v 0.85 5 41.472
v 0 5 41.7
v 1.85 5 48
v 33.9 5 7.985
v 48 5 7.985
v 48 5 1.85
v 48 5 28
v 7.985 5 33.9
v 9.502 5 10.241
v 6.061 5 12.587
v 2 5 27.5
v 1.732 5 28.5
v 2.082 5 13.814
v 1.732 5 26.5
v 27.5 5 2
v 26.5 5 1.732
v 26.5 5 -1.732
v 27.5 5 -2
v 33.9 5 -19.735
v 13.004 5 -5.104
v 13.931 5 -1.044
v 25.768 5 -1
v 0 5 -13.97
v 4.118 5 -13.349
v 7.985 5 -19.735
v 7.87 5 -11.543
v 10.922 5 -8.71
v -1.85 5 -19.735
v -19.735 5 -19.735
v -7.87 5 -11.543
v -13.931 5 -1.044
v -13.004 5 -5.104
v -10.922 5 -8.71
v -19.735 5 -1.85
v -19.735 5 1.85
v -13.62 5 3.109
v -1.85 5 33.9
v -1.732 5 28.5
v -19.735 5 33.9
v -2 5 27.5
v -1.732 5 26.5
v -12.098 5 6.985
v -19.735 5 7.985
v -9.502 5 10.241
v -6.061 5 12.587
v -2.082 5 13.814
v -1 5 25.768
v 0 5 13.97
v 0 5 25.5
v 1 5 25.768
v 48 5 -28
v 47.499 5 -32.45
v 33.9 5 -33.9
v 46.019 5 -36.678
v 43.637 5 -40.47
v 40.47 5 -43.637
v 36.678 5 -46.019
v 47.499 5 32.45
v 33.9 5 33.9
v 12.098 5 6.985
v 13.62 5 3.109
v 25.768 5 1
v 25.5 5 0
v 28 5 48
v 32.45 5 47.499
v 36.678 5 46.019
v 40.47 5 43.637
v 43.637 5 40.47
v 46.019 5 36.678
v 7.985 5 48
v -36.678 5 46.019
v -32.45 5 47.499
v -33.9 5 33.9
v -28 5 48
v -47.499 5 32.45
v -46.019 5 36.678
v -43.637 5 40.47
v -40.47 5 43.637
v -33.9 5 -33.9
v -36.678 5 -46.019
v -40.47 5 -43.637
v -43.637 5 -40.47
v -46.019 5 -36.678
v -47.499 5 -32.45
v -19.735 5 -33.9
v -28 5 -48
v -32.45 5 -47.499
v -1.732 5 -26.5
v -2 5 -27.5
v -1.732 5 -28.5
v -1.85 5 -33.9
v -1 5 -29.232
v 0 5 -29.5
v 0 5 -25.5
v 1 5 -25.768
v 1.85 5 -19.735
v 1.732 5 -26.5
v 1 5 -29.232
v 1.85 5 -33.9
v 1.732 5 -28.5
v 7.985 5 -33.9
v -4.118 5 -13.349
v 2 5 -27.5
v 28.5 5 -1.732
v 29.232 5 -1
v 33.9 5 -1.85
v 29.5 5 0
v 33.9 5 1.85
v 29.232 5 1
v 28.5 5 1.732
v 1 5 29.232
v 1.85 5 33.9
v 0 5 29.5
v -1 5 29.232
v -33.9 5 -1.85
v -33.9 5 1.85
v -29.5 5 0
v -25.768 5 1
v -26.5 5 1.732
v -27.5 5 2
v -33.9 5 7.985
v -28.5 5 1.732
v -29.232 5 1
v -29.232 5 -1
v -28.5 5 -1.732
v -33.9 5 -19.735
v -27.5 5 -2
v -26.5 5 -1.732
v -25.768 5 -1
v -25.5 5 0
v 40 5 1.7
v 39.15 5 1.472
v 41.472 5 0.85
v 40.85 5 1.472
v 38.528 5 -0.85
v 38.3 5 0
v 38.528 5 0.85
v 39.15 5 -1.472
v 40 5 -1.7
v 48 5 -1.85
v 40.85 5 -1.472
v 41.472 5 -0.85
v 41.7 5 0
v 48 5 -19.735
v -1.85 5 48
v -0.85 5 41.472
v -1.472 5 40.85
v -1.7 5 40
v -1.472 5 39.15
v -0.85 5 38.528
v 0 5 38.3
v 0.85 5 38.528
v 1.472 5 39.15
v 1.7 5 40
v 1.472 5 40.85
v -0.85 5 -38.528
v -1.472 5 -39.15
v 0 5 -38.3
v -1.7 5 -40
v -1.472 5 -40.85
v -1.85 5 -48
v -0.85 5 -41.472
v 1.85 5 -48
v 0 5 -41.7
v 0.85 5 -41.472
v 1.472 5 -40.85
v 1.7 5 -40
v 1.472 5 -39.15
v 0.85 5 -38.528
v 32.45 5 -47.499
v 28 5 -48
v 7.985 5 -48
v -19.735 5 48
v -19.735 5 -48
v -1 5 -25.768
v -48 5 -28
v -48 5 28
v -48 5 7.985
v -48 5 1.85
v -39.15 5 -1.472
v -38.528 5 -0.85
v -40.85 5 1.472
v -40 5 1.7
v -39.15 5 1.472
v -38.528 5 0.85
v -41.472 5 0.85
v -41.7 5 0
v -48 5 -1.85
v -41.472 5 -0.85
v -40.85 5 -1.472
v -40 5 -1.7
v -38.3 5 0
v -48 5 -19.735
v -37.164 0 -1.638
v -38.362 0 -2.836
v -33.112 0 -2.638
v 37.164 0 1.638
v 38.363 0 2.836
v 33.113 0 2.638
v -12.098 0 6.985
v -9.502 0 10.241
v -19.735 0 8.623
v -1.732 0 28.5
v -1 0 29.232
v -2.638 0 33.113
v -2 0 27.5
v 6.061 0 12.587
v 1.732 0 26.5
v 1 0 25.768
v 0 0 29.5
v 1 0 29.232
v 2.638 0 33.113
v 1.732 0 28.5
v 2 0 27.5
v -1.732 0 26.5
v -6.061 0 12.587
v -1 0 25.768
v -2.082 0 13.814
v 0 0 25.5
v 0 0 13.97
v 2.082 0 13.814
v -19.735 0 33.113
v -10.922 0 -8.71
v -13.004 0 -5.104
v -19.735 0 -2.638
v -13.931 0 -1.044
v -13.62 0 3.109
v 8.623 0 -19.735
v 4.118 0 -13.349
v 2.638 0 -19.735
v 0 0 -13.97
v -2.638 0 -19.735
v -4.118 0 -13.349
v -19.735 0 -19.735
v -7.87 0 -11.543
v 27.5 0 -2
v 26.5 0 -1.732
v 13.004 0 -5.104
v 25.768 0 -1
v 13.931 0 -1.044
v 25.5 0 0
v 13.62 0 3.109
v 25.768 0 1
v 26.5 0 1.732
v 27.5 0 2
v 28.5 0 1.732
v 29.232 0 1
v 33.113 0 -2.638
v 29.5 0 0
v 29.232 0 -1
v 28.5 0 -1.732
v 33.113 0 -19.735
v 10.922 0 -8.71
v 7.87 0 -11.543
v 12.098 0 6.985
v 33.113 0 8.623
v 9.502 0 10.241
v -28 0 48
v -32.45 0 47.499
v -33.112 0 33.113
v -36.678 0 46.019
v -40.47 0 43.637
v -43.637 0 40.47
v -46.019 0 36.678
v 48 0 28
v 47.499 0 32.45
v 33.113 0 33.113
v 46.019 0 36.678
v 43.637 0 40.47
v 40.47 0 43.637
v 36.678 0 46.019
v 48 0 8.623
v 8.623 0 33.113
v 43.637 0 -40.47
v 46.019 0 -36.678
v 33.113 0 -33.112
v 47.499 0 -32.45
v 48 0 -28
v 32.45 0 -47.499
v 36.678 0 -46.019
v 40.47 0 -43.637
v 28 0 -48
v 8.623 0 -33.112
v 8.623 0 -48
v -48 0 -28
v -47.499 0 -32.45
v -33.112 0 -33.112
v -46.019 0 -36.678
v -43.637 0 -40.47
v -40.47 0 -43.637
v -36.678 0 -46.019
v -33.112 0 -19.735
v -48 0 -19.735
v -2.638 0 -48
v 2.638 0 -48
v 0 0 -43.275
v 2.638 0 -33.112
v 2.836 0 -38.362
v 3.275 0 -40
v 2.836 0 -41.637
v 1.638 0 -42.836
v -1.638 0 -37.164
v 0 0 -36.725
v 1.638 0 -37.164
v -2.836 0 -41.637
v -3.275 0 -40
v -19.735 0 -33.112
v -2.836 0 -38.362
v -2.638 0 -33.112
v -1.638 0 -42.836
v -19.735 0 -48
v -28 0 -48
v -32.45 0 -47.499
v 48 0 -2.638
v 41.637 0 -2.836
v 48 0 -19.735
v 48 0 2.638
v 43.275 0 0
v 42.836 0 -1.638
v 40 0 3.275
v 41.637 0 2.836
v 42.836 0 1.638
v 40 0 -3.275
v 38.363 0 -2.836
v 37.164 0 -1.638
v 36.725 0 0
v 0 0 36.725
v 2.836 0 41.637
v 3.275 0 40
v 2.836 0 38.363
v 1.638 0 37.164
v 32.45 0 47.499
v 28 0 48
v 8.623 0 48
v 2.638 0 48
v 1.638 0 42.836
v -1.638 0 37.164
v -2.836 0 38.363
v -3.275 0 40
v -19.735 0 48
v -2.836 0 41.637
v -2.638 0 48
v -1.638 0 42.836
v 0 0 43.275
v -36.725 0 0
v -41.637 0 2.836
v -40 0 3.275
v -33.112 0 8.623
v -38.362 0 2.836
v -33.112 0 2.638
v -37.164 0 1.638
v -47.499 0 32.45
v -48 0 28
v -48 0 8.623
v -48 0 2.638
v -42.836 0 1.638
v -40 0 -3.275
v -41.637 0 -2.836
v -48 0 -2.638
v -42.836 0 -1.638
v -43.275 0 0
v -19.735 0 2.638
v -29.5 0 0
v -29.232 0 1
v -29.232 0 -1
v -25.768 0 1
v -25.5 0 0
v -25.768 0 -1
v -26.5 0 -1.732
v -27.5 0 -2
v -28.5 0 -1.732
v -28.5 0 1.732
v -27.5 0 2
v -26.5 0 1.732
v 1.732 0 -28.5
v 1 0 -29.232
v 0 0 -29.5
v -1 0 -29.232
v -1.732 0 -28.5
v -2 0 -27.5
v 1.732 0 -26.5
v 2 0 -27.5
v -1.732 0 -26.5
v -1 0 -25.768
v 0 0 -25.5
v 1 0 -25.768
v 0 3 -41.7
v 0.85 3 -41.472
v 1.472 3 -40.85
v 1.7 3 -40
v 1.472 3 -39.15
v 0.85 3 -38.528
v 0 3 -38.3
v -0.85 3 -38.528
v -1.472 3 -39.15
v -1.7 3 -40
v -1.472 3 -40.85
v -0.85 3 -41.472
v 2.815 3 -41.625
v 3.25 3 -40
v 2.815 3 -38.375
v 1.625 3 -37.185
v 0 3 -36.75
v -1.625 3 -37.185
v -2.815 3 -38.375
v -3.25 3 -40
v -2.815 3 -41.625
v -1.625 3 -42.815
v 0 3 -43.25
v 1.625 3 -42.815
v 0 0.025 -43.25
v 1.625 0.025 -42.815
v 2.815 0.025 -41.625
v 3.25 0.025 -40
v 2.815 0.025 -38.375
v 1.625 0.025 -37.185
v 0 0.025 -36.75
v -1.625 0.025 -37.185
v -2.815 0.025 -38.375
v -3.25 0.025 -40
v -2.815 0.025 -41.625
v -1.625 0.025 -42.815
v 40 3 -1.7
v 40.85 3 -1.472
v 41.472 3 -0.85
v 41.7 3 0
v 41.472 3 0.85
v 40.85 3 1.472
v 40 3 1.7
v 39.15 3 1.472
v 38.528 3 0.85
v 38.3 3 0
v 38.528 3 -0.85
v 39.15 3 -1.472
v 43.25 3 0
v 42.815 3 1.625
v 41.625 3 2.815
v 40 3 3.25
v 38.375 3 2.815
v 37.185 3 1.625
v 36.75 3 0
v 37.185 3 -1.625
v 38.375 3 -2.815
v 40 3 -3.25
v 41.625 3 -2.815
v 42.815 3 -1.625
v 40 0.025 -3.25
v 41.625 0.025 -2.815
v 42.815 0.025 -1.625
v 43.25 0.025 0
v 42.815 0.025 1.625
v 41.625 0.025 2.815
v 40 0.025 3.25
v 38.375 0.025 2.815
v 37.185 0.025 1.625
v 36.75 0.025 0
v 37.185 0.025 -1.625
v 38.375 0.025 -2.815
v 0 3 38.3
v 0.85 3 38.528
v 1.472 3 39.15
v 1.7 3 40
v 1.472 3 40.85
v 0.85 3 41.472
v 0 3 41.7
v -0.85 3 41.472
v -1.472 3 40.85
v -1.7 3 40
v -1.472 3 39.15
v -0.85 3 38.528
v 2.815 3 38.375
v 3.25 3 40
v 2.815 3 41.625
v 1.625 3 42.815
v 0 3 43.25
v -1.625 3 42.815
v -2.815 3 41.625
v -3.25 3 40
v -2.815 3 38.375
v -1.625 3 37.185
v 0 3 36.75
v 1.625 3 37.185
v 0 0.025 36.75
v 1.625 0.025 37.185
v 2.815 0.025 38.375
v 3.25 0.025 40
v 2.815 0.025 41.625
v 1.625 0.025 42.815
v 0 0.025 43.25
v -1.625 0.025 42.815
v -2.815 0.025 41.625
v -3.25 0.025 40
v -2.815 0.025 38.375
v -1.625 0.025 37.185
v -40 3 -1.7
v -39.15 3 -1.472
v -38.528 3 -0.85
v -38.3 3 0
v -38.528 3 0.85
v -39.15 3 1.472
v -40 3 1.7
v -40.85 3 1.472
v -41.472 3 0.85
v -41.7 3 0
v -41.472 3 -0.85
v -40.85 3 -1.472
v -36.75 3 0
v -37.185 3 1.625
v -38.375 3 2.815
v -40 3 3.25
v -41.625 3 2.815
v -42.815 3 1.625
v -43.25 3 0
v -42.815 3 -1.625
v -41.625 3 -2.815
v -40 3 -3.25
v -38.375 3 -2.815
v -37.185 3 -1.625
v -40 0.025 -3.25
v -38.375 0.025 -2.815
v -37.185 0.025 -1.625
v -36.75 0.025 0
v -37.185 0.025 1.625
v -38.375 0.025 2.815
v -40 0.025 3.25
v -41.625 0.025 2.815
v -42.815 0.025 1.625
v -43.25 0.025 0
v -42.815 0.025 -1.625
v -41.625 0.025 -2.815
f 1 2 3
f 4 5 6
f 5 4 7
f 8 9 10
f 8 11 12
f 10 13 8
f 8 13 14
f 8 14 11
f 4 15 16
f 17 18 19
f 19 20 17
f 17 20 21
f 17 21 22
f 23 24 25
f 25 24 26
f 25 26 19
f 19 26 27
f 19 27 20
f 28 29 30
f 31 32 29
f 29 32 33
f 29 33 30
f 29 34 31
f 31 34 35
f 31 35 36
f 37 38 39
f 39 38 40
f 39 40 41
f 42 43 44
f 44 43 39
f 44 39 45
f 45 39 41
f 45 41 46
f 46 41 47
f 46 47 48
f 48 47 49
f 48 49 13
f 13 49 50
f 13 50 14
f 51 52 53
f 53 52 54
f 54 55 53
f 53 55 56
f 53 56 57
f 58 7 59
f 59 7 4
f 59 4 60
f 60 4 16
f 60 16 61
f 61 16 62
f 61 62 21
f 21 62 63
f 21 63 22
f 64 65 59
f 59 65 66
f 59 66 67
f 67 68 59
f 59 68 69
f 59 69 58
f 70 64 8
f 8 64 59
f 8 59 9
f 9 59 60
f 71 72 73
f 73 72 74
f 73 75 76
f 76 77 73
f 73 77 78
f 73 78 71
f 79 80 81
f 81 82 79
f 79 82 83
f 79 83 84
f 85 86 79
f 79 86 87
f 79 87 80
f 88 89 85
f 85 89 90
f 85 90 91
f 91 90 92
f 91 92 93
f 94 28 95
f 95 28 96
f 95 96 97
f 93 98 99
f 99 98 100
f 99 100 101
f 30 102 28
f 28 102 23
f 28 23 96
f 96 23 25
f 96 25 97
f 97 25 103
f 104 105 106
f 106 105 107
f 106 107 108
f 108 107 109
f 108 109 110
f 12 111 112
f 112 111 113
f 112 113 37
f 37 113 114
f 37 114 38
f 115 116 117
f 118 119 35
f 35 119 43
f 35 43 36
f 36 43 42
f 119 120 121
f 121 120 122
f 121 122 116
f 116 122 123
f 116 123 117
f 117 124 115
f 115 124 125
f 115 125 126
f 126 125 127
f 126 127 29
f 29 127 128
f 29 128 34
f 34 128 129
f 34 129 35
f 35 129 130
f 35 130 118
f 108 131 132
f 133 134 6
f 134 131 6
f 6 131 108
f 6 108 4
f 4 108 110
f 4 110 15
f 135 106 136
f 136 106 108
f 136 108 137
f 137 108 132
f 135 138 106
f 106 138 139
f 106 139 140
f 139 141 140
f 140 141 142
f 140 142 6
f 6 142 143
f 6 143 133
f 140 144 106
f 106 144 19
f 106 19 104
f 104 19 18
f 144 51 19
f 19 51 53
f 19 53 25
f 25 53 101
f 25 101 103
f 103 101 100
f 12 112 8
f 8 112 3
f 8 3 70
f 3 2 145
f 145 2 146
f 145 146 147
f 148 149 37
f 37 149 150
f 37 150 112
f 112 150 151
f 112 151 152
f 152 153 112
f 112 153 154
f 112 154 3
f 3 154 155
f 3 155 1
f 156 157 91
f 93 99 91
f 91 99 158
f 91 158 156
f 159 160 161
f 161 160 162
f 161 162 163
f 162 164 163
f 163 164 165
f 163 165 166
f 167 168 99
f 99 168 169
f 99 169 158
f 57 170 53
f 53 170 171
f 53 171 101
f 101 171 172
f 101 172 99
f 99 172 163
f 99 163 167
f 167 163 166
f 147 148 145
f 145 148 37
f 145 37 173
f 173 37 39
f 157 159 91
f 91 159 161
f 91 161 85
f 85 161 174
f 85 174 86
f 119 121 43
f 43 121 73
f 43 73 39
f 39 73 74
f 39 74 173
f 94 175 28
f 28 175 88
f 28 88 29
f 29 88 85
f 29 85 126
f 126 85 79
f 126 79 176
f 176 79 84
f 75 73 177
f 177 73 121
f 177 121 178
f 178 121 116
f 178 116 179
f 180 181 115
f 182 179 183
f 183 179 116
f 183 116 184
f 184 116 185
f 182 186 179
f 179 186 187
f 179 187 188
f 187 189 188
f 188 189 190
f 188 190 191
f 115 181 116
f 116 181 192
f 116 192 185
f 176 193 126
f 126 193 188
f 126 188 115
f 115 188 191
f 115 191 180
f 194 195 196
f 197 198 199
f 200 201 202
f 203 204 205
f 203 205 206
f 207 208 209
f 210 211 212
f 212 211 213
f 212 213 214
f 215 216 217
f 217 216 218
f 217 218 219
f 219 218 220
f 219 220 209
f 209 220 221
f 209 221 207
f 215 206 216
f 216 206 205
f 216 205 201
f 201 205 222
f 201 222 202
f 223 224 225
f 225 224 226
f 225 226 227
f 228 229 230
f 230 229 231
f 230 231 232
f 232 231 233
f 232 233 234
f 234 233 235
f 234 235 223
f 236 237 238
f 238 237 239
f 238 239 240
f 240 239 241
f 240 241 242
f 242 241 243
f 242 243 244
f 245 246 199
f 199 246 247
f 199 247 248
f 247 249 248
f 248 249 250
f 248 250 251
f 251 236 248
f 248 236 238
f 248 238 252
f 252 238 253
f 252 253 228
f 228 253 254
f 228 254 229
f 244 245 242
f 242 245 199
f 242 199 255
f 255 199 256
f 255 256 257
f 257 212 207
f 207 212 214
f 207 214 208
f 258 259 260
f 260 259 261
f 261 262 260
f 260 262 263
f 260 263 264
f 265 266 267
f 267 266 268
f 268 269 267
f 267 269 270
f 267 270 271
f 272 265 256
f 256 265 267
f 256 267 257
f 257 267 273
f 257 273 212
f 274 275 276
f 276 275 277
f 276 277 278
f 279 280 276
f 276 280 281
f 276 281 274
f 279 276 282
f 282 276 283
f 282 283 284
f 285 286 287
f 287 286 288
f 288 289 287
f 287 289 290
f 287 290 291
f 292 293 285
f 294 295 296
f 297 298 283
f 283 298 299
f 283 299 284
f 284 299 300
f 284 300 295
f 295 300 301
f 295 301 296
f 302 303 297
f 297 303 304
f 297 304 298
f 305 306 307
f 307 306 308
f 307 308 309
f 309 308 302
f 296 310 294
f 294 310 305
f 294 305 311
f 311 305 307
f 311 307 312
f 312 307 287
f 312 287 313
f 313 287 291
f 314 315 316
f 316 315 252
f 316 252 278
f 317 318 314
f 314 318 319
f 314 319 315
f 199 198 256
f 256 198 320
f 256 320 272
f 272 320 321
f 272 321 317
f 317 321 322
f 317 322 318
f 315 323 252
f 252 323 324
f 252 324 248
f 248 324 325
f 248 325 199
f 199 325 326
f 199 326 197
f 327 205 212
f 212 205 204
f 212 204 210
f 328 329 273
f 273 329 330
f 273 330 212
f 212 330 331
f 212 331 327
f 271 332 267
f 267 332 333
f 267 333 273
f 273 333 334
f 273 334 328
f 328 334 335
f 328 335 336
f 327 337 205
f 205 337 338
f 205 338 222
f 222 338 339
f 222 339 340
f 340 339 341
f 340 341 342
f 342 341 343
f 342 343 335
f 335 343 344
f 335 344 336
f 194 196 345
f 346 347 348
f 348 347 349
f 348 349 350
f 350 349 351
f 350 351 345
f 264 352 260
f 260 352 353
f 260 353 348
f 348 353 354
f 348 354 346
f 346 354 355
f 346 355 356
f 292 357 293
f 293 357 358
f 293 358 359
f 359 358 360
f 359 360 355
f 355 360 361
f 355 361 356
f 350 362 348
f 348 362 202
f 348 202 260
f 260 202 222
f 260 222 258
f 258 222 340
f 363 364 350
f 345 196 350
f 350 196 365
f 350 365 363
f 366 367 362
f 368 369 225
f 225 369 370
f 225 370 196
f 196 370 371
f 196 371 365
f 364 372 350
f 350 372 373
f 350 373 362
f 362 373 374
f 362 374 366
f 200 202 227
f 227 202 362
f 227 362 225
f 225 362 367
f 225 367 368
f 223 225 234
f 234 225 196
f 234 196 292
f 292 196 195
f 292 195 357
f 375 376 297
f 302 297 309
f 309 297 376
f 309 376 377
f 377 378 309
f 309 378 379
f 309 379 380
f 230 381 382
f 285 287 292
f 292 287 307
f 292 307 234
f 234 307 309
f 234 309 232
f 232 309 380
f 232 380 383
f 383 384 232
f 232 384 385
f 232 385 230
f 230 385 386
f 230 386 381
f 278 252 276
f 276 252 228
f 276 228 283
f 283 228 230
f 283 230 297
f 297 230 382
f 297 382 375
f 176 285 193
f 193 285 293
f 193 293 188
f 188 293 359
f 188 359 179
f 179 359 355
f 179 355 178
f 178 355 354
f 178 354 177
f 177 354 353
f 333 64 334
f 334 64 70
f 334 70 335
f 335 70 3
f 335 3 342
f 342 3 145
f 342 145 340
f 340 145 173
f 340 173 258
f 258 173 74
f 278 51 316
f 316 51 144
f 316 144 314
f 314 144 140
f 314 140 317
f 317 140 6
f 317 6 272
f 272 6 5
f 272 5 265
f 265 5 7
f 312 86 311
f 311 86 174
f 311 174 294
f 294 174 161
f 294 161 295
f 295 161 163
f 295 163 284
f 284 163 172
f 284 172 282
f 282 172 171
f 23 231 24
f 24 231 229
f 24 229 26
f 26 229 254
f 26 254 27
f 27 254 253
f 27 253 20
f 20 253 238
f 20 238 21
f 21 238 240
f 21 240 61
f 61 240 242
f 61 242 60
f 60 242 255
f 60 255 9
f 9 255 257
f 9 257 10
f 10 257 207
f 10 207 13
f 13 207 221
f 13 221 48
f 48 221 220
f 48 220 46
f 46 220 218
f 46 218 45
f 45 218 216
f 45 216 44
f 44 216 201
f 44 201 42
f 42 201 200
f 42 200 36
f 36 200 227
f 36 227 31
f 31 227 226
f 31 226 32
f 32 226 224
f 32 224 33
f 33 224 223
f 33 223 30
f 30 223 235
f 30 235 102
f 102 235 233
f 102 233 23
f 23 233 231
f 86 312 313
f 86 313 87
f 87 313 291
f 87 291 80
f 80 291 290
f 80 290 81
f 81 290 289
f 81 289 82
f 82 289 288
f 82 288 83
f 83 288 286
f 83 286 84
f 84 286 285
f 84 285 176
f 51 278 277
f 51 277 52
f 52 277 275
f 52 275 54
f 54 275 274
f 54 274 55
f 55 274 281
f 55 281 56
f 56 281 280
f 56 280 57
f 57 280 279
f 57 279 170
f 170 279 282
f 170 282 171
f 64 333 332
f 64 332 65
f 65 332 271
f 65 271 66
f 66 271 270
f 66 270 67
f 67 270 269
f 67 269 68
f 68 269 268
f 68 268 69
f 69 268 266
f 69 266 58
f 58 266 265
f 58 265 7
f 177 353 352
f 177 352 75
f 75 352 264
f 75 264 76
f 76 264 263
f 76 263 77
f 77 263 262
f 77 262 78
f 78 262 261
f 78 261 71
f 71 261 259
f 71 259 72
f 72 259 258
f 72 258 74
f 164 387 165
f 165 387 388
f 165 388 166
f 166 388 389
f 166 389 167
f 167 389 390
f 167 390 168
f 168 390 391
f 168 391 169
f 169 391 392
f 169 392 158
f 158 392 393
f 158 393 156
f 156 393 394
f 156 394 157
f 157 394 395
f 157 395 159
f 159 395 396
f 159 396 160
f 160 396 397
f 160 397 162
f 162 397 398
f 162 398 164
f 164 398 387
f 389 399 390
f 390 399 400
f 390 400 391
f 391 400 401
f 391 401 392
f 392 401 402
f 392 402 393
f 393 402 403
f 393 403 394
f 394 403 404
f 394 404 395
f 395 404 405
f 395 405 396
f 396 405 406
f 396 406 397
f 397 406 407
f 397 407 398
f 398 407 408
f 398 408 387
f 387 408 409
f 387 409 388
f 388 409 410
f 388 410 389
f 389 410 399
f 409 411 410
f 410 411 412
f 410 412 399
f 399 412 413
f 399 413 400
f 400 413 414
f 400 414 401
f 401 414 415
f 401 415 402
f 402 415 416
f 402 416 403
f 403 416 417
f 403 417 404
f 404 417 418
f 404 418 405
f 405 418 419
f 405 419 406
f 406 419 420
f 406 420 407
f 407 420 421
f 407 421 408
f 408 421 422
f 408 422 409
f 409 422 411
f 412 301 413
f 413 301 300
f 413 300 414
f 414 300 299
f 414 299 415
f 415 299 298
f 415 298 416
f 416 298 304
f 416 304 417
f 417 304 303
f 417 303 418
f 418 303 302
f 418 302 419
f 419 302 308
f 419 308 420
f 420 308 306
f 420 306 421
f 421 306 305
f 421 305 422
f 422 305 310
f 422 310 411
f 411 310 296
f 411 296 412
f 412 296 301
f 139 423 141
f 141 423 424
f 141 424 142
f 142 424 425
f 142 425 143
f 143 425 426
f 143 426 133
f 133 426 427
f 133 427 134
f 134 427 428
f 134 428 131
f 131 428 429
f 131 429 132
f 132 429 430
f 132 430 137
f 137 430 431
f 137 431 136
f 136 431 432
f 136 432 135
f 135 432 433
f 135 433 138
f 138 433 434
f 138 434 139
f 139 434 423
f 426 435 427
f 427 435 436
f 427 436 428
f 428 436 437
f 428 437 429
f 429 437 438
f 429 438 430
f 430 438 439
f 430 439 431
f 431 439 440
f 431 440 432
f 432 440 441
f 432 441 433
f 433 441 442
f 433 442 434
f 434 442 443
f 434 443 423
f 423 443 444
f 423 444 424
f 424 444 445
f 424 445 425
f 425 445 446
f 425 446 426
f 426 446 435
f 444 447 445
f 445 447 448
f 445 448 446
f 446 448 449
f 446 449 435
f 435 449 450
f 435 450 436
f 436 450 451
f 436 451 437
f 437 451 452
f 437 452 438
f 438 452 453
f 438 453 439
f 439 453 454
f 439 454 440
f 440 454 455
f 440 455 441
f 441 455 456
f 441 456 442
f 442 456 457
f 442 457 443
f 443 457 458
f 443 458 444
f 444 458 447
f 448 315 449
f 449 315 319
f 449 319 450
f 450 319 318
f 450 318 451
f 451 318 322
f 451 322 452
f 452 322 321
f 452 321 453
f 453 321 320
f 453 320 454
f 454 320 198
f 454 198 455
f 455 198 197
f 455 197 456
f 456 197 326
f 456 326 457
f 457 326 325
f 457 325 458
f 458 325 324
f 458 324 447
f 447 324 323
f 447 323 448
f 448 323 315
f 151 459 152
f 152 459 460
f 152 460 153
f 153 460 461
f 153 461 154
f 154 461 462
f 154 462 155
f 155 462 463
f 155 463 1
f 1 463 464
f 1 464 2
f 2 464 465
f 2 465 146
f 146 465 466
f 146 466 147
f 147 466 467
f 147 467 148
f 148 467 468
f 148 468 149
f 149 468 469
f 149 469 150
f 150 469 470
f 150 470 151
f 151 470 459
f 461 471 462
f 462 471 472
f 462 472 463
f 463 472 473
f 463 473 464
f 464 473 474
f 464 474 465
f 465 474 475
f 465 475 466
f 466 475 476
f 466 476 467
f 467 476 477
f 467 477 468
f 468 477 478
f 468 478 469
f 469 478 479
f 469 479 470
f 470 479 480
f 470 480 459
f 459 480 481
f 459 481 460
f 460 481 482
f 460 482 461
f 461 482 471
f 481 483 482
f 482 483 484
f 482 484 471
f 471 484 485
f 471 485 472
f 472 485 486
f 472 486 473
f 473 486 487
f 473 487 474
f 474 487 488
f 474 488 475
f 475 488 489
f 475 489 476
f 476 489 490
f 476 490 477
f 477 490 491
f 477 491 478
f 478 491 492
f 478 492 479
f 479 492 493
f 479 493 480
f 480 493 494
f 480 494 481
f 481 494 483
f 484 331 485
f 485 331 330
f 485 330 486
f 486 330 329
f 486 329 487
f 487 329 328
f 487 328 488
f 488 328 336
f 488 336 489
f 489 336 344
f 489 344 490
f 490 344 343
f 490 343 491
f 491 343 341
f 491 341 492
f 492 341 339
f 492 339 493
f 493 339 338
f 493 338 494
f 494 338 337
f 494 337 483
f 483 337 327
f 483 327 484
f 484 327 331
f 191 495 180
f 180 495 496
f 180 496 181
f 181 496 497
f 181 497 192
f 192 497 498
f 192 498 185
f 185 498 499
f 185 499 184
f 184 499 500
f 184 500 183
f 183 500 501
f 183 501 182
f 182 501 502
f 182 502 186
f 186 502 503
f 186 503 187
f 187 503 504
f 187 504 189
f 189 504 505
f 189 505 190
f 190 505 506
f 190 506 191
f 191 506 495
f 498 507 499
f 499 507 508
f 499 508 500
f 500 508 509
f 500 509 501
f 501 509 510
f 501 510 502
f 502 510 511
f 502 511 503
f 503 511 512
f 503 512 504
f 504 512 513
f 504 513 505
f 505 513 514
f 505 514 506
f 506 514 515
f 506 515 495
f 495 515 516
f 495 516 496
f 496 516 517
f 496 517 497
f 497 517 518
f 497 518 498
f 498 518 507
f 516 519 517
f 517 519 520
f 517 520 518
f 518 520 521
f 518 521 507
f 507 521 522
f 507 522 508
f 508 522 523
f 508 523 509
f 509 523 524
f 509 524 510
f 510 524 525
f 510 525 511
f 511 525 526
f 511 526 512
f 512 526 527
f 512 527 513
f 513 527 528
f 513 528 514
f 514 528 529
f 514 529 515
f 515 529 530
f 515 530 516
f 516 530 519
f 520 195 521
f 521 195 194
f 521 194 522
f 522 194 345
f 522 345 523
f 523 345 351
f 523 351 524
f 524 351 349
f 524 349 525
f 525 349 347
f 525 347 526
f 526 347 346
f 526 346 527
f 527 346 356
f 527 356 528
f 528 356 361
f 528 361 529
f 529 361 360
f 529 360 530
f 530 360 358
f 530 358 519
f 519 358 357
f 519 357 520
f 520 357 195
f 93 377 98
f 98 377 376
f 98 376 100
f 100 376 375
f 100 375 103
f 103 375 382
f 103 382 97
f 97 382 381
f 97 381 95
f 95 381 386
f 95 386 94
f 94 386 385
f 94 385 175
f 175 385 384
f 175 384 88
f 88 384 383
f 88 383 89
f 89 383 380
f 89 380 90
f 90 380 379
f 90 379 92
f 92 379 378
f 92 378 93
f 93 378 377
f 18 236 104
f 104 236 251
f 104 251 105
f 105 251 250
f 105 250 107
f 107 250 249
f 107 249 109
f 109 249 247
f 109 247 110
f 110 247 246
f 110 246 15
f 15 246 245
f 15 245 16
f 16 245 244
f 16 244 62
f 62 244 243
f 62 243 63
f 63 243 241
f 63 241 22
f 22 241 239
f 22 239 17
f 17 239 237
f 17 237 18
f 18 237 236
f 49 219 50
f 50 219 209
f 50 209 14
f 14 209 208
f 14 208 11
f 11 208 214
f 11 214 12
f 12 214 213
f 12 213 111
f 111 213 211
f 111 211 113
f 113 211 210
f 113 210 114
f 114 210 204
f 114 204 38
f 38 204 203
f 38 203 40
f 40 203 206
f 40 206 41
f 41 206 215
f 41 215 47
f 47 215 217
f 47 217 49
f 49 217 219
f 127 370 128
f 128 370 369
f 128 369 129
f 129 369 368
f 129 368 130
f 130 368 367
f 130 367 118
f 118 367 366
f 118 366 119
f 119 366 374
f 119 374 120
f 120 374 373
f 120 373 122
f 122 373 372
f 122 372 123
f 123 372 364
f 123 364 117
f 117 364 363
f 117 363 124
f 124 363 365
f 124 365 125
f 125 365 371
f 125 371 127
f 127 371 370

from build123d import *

# Parameters (mm, degrees)
SKETCH1_W                     = 96
SKETCH1_H                     = 96
SKETCH1_R                     = 13.97
BOSS_EXTRUDE1_DEPTH           = 5
FILLET1_R                     = 20
CBORE_FOR_M3_SHCS1_AT_2_COUNT = 2
CBORE_FOR_M3_SHCS1_AT_2_PITCH = 56.568542495
CBORE_FOR_M3_SHCS1_AT_3_COUNT = 2
CBORE_FOR_M3_SHCS1_AT_3_PITCH = 80
CBORE_FOR_M3_SHCS1_AT_4_COUNT = 2
CBORE_FOR_M3_SHCS1_AT_4_PITCH = 56.568542495
SKETCH7_R                     = 2
CUT_EXTRUDE1_DEPTH            = 69.066144301


with BuildPart() as part:
    # Sketch1 → Boss-Extrude1 (new body)
    with BuildSketch(Plane(origin=(0, 0, 0), x_dir=(1, 0, 0), z_dir=(0, 1, 0))):
        Rectangle(SKETCH1_W, SKETCH1_H)
        with Locations(Location((0, 0, 0), (0, 0, 270))):
            Circle(SKETCH1_R, mode=Mode.SUBTRACT)
    extrude(amount=BOSS_EXTRUDE1_DEPTH)

    # Fillet1
    fillet1_edges = [part.edges().sort_by_distance(p)[0] for p in [
        (-48, 2.5, -48),
        (48, 2.5, -48),
        (48, 2.5, 48),
        (-48, 2.5, 48),
    ]]
    fillet(fillet1_edges, radius=FILLET1_R)

    # Sketch6 → CBORE for M3 SHCS1 (revolve, cut)
    with BuildSketch(Plane(origin=(-40, 0, 0), x_dir=(0, 0, -1), z_dir=(1, 0, 0))):
        Polygon((0, 0), (0, 5), (1.7, 5), (1.7, 3), (3.25, 3), (3.25, 0.025), (3.275, 0), align=None)
    cbore_for_m3_shcs1 = revolve(axis=Axis((-40, -6.35, 0), (0, 1, 0)), mode=Mode.SUBTRACT)

    # CBORE for M3 SHCS1 at 2: CBORE for M3 SHCS1 ×2
    with Locations(*[Vector(0.7071067811865476, 0, 0.7071067811865476) * (i * CBORE_FOR_M3_SHCS1_AT_2_PITCH) for i in range(1, CBORE_FOR_M3_SHCS1_AT_2_COUNT)]):
        add(cbore_for_m3_shcs1, mode=Mode.SUBTRACT)

    # CBORE for M3 SHCS1 at 3: CBORE for M3 SHCS1 ×2
    with Locations(*[(i * CBORE_FOR_M3_SHCS1_AT_3_PITCH, 0, 0) for i in range(1, CBORE_FOR_M3_SHCS1_AT_3_COUNT)]):
        add(cbore_for_m3_shcs1, mode=Mode.SUBTRACT)

    # CBORE for M3 SHCS1 at 4: CBORE for M3 SHCS1 ×2
    with Locations(*[Vector(0.7071067811865476, 0, -0.7071067811865476) * (i * CBORE_FOR_M3_SHCS1_AT_4_PITCH) for i in range(1, CBORE_FOR_M3_SHCS1_AT_4_COUNT)]):
        add(cbore_for_m3_shcs1, mode=Mode.SUBTRACT)

    # Sketch7 → Cut-Extrude1 (cut, through all)
    with BuildSketch(Plane.XZ):
        with Locations(Location((-27.5, 0, 0), (0, 0, 270))):
            Circle(SKETCH7_R)
        with Locations(Location((0, 27.5, 0), (0, 0, 270))):
            Circle(SKETCH7_R)
        with Locations(Location((27.5, 0, 0), (0, 0, 270))):
            Circle(SKETCH7_R)
        with Locations(Location((0, -27.5, 0), (0, 0, 270))):
            Circle(SKETCH7_R)
    extrude(amount=-CUT_EXTRUDE1_DEPTH, mode=Mode.SUBTRACT)


solid = part.part
